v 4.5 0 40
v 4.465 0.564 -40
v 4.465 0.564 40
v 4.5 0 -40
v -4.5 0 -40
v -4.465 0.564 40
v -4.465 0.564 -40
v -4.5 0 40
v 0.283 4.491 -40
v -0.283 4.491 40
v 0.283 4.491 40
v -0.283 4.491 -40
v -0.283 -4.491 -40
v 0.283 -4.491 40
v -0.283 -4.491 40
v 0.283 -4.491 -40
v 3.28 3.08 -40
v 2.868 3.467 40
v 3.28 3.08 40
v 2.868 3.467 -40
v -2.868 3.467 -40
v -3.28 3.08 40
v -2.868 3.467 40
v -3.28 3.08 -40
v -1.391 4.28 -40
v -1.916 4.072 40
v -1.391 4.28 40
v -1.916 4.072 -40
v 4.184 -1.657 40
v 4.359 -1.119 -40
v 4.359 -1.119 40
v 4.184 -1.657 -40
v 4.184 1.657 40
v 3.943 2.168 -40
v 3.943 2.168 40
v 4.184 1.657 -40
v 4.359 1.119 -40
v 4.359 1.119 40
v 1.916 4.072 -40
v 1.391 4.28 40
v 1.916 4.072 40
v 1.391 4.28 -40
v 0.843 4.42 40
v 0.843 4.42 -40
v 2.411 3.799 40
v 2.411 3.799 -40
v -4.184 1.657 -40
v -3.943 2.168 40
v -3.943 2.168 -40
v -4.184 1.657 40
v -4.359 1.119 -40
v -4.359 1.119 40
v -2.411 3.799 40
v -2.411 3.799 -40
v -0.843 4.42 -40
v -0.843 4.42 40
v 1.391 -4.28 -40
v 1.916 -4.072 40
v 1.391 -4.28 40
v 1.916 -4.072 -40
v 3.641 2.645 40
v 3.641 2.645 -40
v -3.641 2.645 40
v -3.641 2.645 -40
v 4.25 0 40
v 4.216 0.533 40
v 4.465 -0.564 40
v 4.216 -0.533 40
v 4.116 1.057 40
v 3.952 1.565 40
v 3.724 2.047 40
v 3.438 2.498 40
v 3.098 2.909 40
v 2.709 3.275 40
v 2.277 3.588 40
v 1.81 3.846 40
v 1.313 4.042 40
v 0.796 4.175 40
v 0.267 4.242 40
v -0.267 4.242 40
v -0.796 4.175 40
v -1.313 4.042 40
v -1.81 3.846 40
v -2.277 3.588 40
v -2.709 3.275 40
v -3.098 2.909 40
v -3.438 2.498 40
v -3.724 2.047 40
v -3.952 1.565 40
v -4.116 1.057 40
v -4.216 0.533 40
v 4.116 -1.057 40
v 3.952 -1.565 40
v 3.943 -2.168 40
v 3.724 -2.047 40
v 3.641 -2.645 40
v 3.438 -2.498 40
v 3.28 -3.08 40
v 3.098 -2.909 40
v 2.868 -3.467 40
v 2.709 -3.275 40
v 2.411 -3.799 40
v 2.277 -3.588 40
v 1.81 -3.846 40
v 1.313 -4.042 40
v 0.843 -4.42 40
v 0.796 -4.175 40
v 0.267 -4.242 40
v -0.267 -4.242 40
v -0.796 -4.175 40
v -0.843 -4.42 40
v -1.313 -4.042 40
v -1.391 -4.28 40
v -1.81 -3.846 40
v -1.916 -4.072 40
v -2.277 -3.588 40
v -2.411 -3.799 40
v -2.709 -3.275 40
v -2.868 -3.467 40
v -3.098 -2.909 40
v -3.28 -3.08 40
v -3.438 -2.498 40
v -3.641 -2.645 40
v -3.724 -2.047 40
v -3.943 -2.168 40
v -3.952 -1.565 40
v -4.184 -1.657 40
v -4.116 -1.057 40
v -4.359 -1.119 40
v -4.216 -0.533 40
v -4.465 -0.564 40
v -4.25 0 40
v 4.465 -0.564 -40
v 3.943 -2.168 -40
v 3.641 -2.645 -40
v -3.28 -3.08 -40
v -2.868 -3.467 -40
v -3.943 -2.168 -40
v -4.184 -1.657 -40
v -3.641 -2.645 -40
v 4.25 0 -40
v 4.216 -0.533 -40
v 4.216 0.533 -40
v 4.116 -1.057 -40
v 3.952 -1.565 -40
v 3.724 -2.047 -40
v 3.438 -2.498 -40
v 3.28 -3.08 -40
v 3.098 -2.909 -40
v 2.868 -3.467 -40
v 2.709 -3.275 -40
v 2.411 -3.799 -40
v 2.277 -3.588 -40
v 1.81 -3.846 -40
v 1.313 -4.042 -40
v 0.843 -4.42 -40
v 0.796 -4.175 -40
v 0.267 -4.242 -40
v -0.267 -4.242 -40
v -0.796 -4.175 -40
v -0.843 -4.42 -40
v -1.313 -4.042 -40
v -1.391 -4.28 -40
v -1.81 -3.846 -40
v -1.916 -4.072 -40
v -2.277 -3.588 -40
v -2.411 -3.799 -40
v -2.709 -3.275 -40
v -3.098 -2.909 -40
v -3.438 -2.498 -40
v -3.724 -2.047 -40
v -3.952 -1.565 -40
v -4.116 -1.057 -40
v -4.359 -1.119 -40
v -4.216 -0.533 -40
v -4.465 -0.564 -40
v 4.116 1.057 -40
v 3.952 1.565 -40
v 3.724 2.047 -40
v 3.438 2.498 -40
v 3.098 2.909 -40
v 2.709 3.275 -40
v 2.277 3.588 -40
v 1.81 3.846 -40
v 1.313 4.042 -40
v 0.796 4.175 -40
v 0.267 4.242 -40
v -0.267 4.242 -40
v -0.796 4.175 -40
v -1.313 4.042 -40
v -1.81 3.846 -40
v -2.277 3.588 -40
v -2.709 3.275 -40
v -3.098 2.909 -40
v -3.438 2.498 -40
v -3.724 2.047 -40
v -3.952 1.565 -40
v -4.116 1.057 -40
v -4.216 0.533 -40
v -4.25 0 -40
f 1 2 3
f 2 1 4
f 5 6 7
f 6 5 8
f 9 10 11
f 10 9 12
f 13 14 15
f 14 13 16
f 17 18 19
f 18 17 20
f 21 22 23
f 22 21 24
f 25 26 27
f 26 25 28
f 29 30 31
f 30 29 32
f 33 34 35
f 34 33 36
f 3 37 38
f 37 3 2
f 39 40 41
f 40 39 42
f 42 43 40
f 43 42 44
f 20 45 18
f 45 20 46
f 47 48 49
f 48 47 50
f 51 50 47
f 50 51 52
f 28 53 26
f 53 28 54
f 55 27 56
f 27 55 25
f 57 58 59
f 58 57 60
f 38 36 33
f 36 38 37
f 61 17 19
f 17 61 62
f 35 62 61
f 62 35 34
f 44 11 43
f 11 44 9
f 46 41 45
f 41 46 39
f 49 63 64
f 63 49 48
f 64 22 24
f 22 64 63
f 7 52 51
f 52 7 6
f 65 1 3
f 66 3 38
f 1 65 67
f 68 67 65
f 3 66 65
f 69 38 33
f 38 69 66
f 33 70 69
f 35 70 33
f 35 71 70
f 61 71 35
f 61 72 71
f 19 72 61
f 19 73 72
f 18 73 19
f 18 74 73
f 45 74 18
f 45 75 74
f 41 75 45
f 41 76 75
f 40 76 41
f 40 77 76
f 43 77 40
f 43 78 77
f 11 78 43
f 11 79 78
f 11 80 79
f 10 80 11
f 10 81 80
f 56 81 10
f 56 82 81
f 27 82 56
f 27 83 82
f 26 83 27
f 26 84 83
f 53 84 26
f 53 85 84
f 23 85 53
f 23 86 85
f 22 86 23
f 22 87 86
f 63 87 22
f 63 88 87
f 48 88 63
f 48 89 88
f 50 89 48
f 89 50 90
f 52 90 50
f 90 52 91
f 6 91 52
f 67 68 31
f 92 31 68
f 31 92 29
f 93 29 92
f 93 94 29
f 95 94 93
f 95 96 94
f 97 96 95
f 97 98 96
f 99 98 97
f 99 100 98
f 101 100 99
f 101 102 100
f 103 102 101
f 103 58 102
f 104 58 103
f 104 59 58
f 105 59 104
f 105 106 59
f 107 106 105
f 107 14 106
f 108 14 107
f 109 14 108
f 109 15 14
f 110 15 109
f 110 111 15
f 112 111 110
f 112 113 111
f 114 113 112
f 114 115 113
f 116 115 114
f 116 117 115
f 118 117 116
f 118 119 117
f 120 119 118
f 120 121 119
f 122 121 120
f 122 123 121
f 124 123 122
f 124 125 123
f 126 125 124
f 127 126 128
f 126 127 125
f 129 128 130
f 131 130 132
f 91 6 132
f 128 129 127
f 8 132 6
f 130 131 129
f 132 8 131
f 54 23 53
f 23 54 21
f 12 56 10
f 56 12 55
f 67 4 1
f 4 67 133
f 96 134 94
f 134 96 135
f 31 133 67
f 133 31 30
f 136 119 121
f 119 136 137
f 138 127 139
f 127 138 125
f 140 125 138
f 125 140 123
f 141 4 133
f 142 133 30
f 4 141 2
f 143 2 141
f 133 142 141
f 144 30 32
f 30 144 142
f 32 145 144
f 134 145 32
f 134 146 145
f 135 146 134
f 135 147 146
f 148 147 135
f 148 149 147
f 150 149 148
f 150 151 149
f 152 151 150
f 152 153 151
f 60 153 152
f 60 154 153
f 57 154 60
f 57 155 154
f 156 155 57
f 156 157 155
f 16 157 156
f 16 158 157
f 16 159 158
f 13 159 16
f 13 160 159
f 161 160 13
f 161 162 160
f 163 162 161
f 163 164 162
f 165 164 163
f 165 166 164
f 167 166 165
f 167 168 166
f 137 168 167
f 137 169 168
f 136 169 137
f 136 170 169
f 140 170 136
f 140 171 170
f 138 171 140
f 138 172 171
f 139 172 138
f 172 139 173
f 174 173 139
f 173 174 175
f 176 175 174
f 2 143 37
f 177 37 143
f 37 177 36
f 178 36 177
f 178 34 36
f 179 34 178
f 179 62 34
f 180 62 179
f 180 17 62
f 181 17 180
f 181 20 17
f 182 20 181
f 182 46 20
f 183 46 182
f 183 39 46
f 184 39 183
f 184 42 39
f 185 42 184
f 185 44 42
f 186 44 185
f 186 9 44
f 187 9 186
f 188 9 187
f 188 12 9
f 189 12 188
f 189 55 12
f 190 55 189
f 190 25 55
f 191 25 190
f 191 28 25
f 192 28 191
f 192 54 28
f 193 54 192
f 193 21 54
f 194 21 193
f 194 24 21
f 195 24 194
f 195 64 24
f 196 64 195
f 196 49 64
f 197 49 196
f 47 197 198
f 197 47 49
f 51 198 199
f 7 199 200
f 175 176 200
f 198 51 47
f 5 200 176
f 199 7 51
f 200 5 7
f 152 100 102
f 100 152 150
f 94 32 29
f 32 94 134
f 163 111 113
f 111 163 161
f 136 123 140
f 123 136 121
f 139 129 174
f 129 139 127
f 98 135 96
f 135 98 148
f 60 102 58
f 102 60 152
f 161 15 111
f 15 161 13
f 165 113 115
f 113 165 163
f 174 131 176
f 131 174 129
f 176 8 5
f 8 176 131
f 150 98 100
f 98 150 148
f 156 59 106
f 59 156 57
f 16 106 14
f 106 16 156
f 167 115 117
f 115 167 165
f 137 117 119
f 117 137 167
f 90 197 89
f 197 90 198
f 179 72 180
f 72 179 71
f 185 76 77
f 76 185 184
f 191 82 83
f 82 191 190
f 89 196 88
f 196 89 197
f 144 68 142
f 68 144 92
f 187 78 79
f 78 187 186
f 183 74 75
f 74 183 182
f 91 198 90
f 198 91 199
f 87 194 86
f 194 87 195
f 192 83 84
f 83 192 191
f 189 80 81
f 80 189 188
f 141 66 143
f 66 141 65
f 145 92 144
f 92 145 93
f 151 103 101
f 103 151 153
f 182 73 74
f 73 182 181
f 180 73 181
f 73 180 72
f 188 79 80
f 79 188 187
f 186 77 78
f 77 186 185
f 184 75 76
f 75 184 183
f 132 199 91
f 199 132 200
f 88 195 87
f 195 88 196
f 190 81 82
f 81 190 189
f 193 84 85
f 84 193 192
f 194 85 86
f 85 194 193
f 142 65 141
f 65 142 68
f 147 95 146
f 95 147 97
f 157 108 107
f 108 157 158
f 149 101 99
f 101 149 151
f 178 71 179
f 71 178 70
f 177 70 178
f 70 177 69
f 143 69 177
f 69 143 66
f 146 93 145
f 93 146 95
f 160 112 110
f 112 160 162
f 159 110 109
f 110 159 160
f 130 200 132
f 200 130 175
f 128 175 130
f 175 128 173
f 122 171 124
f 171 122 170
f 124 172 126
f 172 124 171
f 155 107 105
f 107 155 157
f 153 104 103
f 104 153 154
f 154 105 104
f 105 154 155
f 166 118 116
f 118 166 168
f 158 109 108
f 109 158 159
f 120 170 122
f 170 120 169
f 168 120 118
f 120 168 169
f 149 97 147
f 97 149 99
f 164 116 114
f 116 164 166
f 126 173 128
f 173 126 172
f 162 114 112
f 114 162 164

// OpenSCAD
$fn = 50;


difference() {
	union() {
		translate(v = [0, 0, -40.0000000000]) {
			cylinder(h = 80, r = 4.5000000000);
		}
	}
	union() {
		translate(v = [0, 0, -100.0000000000]) {
			cylinder(h = 200, r = 4.2500000000);
		}
	}
}
